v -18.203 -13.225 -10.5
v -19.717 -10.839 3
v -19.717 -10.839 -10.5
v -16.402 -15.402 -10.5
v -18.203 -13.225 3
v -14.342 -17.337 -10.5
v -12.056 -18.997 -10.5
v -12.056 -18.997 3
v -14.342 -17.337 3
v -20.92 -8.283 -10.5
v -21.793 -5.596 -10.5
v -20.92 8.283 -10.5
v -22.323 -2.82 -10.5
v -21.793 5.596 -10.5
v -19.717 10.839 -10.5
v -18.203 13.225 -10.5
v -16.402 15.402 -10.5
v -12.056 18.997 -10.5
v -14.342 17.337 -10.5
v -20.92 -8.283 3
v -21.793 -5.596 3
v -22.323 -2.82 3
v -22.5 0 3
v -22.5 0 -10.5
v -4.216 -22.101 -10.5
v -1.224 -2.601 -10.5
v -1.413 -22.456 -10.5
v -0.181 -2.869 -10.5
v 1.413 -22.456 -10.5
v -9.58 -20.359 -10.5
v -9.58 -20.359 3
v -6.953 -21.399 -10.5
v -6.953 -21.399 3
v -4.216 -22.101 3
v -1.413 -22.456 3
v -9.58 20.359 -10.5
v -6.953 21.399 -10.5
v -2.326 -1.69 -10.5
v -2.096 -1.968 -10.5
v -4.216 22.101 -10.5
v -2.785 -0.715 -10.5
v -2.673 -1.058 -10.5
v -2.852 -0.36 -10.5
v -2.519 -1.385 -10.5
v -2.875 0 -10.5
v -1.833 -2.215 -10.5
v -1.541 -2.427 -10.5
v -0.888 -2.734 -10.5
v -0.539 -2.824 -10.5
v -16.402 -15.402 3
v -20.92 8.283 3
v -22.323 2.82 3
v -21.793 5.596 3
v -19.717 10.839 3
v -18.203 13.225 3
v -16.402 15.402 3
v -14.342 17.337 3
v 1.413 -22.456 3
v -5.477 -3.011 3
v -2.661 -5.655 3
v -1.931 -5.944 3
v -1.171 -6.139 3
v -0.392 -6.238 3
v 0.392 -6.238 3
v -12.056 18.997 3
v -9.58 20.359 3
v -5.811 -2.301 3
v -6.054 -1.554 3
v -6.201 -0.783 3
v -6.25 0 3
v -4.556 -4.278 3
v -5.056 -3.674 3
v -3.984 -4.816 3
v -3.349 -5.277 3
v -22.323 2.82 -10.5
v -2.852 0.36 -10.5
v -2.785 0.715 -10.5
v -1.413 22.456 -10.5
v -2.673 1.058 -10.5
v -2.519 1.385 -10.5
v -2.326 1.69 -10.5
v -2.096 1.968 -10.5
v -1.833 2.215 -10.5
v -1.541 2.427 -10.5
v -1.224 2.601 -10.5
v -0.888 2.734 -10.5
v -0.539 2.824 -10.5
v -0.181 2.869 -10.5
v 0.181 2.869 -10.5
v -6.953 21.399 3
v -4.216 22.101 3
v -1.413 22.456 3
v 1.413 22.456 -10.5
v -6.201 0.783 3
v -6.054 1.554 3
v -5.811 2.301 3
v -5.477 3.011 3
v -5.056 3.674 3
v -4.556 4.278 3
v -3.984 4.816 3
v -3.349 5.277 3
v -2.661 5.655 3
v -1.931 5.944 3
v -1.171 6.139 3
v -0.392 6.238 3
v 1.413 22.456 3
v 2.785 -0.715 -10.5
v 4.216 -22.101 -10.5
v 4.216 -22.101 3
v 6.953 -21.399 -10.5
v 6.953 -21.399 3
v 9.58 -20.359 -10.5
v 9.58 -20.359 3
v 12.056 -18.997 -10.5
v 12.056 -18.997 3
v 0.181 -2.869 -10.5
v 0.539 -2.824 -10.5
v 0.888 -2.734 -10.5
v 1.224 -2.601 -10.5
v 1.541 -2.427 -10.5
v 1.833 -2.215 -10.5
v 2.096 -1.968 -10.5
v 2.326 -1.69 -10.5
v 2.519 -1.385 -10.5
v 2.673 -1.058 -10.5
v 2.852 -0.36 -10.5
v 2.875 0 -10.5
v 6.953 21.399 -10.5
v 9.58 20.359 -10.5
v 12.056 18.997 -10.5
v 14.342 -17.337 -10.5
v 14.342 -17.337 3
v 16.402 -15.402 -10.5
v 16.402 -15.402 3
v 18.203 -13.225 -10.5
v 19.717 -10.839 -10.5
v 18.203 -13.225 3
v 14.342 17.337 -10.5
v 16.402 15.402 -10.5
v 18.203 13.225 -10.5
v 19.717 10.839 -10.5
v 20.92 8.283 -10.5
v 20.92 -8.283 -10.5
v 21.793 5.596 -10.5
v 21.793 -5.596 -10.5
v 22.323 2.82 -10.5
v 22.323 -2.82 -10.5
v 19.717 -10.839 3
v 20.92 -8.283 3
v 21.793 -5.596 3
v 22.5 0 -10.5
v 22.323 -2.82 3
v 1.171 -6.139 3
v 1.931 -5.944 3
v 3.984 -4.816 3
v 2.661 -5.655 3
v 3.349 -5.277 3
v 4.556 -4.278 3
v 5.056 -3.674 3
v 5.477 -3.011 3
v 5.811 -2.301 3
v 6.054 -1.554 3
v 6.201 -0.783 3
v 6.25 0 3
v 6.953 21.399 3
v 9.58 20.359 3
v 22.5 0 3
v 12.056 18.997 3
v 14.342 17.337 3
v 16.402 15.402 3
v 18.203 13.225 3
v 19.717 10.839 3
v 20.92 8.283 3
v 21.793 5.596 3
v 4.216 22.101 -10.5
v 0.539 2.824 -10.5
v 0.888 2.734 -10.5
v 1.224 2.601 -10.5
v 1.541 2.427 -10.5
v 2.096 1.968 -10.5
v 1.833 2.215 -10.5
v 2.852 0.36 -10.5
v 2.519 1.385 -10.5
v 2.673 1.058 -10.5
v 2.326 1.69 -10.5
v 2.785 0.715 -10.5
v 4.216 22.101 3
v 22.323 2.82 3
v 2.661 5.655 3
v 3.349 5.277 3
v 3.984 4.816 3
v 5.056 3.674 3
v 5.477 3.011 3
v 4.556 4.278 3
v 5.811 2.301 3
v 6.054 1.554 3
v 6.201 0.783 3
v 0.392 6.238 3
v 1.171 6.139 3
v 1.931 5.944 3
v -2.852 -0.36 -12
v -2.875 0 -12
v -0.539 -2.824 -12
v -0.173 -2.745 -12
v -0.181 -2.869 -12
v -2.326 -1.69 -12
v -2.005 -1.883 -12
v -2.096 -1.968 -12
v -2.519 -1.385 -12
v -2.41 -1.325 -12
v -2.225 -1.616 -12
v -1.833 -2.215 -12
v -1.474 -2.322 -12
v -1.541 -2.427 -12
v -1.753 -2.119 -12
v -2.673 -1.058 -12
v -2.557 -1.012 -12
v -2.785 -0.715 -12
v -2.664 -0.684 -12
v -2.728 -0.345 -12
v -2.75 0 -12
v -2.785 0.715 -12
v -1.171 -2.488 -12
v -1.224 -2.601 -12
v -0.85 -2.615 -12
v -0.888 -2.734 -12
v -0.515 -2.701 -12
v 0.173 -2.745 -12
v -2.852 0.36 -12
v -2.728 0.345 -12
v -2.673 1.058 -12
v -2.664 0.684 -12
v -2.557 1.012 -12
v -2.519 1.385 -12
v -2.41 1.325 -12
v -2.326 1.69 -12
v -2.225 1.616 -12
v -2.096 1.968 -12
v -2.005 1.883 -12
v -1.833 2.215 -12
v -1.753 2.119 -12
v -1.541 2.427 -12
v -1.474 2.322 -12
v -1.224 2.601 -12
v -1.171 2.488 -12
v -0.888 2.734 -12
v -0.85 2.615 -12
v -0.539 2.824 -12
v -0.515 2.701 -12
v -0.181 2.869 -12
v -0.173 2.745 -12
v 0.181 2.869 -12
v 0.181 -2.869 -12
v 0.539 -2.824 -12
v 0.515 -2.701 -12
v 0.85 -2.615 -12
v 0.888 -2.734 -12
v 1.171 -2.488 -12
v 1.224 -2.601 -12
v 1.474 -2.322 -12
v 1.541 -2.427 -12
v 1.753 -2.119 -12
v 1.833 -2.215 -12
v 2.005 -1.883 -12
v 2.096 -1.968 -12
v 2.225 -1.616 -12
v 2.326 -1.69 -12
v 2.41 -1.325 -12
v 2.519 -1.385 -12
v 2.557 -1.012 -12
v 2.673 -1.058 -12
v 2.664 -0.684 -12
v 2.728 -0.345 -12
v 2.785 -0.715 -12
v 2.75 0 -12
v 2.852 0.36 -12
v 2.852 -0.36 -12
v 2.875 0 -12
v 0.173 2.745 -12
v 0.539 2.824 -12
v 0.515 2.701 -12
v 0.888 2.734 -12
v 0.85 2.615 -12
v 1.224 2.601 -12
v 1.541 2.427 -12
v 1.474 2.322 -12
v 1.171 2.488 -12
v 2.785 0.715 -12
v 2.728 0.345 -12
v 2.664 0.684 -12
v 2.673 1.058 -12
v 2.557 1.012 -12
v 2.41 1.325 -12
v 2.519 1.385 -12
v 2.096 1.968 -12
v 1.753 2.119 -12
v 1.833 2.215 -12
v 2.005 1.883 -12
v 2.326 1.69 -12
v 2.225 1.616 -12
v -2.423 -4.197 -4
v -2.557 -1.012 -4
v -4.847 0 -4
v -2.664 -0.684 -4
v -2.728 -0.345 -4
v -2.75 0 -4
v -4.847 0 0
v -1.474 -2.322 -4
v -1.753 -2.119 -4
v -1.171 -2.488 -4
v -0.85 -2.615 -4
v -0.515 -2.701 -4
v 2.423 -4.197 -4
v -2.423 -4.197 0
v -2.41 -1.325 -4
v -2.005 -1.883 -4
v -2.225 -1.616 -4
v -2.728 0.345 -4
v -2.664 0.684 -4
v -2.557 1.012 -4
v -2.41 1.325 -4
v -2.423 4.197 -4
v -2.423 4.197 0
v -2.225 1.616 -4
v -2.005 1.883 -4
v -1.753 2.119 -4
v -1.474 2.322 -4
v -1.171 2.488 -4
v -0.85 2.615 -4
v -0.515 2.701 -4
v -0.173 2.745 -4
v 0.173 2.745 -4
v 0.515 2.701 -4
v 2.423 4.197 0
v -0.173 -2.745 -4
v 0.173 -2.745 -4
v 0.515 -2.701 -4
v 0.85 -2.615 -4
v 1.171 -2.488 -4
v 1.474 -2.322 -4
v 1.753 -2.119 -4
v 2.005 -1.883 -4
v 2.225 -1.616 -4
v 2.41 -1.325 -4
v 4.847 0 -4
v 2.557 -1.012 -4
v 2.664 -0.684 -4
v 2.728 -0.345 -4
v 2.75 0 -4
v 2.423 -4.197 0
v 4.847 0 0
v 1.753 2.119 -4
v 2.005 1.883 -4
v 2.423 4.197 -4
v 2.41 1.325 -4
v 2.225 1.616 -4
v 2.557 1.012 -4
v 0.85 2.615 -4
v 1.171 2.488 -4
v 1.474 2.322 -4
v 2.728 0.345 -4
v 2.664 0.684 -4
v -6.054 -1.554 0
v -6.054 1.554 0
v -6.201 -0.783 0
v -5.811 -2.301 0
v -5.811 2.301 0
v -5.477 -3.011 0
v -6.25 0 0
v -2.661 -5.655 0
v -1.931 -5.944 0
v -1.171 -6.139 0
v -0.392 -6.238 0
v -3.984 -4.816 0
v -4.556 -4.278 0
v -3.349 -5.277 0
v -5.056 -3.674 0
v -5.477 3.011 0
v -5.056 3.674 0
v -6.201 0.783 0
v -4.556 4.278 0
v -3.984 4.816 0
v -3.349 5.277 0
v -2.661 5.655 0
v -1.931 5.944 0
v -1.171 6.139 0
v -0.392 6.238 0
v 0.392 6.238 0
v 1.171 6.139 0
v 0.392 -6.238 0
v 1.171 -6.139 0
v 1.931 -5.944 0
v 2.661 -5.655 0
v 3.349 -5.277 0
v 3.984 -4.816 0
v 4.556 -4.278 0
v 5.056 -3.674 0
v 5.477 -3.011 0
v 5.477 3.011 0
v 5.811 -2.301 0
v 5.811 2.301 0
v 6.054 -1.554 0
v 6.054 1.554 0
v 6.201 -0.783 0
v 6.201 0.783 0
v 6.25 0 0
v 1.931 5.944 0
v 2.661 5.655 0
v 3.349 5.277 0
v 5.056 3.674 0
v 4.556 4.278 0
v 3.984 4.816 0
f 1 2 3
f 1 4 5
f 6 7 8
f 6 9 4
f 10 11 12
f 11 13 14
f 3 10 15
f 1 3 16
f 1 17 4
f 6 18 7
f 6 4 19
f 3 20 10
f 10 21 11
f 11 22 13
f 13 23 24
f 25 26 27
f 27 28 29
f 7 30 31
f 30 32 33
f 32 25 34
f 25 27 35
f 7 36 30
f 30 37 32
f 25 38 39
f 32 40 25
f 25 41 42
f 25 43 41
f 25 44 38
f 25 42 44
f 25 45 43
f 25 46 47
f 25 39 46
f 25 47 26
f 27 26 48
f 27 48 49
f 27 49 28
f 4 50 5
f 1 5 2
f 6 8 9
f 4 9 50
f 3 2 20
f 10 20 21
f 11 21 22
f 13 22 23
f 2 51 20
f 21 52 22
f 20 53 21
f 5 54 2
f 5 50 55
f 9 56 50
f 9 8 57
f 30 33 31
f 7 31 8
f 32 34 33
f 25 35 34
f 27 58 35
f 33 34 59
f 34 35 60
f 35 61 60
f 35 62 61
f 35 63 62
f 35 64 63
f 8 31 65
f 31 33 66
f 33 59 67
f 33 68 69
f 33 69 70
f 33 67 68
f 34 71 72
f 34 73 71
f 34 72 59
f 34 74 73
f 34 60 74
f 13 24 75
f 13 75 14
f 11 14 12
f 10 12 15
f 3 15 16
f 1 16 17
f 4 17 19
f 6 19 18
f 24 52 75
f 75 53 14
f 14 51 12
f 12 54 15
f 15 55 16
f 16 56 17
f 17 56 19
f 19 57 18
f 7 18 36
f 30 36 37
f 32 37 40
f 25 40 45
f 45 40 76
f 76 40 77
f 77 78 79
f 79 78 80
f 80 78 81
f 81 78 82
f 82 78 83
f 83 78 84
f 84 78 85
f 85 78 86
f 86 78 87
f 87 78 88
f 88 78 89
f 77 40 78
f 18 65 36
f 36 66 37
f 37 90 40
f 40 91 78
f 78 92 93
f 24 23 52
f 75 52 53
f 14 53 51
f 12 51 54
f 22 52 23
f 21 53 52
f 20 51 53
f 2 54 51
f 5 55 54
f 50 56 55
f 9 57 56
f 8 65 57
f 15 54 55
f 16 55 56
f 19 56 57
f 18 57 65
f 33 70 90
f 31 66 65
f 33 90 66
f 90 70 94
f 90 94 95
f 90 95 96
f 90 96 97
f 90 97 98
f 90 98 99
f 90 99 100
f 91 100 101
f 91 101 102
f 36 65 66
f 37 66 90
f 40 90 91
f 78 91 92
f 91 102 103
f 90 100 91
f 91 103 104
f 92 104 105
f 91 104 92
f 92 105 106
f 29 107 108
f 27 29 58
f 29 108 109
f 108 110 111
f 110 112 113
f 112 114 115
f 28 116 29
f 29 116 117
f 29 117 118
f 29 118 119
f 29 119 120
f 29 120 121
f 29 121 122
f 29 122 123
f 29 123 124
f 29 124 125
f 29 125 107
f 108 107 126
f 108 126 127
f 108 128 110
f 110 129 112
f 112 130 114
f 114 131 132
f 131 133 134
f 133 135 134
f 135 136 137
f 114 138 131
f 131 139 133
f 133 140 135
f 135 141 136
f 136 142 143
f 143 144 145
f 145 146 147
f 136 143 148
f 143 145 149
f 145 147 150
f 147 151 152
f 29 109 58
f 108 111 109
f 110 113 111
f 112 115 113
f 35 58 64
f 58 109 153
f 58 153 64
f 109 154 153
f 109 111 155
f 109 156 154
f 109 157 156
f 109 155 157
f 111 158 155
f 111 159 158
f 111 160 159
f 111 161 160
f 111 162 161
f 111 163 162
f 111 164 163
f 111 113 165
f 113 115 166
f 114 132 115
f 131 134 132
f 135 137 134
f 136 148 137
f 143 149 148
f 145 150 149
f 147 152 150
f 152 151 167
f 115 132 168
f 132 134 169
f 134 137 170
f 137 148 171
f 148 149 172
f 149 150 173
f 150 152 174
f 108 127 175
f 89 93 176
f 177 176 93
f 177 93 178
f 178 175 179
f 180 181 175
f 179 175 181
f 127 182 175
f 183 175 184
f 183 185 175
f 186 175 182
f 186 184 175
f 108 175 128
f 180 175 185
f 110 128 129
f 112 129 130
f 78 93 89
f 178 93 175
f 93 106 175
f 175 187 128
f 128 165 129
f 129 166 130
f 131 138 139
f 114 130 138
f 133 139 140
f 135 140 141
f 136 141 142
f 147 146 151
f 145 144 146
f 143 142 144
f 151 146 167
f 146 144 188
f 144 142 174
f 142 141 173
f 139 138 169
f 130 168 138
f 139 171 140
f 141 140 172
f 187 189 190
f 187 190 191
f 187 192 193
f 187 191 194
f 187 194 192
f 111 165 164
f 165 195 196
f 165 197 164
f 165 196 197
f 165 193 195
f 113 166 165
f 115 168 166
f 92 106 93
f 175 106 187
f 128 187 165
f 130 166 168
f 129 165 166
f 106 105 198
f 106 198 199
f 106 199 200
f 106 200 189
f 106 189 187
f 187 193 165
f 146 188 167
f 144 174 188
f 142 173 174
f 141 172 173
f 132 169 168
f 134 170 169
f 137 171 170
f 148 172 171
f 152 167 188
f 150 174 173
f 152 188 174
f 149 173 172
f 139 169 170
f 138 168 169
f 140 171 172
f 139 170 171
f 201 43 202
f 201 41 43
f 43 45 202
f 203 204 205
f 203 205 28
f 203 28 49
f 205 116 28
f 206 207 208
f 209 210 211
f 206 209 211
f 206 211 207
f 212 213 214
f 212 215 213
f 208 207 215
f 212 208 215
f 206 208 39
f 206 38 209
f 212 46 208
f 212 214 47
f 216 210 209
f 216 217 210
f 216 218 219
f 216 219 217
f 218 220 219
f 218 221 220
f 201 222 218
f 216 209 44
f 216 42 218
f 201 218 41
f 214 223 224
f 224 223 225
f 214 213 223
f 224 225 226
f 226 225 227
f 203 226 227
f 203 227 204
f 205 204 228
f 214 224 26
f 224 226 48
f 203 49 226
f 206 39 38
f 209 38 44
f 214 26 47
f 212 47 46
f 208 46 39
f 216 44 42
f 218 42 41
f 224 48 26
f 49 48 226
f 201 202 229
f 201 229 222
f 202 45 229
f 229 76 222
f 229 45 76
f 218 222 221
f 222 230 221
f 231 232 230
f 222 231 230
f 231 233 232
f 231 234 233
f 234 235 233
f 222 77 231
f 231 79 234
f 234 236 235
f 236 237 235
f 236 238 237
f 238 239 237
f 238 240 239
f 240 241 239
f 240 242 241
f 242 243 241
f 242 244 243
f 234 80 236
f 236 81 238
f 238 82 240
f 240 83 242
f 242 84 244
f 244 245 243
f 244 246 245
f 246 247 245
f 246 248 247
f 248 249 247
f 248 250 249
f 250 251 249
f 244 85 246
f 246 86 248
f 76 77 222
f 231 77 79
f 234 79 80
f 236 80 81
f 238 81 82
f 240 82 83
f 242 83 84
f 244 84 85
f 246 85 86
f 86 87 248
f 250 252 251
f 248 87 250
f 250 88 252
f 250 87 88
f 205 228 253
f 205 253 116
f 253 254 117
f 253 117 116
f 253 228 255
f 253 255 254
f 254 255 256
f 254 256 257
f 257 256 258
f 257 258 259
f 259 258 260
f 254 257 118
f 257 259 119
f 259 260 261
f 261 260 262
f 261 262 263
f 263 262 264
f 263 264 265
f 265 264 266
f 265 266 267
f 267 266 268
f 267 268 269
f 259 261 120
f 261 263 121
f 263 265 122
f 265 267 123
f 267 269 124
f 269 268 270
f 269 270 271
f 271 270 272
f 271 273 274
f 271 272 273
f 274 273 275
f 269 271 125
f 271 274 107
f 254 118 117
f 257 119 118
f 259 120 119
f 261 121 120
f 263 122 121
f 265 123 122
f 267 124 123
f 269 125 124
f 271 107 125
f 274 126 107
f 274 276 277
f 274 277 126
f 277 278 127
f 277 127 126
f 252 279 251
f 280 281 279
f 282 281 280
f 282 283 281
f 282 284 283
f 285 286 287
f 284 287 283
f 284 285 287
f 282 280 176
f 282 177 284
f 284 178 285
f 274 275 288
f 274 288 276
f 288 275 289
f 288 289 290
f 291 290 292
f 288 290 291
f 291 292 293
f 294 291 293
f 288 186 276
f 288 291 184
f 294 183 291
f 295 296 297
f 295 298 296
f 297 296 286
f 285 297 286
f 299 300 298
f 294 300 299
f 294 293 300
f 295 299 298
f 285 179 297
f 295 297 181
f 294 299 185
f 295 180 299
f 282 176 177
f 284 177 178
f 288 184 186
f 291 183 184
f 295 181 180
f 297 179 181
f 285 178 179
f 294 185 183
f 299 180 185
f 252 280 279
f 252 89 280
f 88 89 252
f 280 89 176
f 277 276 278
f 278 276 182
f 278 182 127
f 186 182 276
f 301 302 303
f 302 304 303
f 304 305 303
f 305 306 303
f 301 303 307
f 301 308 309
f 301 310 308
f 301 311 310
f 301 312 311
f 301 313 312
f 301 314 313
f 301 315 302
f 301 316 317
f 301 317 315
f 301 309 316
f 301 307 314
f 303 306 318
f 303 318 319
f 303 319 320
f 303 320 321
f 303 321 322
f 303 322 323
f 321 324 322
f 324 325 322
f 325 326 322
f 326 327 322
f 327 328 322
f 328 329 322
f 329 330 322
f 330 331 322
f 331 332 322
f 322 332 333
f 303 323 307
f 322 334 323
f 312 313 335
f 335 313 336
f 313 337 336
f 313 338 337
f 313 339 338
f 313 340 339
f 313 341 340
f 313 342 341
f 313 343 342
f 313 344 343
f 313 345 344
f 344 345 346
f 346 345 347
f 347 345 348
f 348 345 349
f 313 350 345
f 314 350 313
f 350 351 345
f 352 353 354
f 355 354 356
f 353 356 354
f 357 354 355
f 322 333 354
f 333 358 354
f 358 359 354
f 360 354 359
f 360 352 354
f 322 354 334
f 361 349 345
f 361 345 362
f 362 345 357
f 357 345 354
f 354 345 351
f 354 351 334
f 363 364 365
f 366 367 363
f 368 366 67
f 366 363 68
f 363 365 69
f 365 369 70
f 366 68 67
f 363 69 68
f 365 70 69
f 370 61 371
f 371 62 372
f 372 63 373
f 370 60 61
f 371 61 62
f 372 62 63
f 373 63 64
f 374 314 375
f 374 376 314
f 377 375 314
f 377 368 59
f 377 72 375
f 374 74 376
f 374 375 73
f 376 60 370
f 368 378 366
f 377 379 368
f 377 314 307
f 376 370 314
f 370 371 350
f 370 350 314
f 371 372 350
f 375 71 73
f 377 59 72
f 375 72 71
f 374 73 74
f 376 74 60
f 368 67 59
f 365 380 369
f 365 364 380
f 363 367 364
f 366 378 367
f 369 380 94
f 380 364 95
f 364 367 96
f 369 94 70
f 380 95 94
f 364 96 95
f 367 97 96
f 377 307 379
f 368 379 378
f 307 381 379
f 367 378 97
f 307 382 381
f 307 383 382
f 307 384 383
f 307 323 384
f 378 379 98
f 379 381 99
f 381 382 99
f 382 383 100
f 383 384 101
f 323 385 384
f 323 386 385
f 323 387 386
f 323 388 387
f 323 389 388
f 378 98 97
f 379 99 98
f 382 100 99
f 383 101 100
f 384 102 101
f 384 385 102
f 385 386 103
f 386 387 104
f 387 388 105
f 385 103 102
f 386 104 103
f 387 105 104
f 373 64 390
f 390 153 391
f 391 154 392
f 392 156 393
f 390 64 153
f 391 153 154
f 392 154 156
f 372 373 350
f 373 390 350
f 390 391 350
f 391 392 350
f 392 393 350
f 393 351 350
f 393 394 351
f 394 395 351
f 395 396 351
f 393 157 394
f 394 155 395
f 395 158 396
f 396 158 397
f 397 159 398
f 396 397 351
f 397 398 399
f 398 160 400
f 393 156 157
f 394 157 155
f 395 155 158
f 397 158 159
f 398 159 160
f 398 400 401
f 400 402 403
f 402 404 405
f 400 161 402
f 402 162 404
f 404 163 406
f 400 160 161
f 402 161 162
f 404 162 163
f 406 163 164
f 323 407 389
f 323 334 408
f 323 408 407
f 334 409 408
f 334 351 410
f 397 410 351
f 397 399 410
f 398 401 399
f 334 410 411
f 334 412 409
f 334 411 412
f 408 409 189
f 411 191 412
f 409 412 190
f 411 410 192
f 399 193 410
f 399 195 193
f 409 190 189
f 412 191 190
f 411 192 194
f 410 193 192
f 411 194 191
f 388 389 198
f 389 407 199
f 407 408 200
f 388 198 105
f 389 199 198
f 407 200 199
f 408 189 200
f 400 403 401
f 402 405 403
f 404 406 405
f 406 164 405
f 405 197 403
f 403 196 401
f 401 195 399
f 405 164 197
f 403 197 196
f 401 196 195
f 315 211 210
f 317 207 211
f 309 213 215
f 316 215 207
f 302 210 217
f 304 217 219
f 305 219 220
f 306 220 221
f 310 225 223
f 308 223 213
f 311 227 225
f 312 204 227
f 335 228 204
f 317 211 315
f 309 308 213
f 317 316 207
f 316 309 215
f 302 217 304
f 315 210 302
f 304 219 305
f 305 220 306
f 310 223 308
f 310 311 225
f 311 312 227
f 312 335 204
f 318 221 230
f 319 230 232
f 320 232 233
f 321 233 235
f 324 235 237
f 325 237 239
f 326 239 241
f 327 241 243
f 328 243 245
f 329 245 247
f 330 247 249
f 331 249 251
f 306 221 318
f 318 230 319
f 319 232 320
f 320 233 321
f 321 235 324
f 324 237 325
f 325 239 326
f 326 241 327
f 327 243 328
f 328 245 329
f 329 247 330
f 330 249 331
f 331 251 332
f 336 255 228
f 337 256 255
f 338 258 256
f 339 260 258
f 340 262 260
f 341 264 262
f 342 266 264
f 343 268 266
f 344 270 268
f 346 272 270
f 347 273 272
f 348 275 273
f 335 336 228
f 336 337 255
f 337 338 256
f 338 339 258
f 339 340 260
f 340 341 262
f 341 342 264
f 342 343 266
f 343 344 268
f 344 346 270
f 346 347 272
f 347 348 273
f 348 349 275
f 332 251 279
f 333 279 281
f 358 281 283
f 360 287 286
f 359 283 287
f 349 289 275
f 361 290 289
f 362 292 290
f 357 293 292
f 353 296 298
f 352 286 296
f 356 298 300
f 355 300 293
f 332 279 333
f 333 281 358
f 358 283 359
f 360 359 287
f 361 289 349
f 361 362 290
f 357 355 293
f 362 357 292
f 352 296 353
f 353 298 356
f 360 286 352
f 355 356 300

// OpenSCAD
$fn = 50;


difference() {
	union() {
		translate(v = [0, 0, -10.5000000000]) {
			cylinder(h = 13.5000000000, r = 22.5000000000);
		}
		#translate(v = [0, 0, -12.0000000000]) {
			cylinder(h = 12, r = 2.8750000000);
		}
	}
	union() {
		translate(v = [0, 0, 0]) {
			rotate(a = [0, 0, 0]) {
				difference() {
					union() {
						translate(v = [0, 0, -4]) {
							linear_extrude(height = 4) {
								polygon(points = [[4.8468000000, 0.0000000000], [2.4234000000, 4.1974519271], [-2.4234000000, 4.1974519271], [-4.8468000000, 0.0000000000], [-2.4234000000, -4.1974519271], [2.4234000000, -4.1974519271]]);
							}
						}
					}
					union();
				}
			}
		}
		#cylinder(h = 3, r = 6.2500000000);
		#translate(v = [0, 0, -100.0000000000]) {
			cylinder(h = 200, r = 2.7500000000);
		}
	}
}
